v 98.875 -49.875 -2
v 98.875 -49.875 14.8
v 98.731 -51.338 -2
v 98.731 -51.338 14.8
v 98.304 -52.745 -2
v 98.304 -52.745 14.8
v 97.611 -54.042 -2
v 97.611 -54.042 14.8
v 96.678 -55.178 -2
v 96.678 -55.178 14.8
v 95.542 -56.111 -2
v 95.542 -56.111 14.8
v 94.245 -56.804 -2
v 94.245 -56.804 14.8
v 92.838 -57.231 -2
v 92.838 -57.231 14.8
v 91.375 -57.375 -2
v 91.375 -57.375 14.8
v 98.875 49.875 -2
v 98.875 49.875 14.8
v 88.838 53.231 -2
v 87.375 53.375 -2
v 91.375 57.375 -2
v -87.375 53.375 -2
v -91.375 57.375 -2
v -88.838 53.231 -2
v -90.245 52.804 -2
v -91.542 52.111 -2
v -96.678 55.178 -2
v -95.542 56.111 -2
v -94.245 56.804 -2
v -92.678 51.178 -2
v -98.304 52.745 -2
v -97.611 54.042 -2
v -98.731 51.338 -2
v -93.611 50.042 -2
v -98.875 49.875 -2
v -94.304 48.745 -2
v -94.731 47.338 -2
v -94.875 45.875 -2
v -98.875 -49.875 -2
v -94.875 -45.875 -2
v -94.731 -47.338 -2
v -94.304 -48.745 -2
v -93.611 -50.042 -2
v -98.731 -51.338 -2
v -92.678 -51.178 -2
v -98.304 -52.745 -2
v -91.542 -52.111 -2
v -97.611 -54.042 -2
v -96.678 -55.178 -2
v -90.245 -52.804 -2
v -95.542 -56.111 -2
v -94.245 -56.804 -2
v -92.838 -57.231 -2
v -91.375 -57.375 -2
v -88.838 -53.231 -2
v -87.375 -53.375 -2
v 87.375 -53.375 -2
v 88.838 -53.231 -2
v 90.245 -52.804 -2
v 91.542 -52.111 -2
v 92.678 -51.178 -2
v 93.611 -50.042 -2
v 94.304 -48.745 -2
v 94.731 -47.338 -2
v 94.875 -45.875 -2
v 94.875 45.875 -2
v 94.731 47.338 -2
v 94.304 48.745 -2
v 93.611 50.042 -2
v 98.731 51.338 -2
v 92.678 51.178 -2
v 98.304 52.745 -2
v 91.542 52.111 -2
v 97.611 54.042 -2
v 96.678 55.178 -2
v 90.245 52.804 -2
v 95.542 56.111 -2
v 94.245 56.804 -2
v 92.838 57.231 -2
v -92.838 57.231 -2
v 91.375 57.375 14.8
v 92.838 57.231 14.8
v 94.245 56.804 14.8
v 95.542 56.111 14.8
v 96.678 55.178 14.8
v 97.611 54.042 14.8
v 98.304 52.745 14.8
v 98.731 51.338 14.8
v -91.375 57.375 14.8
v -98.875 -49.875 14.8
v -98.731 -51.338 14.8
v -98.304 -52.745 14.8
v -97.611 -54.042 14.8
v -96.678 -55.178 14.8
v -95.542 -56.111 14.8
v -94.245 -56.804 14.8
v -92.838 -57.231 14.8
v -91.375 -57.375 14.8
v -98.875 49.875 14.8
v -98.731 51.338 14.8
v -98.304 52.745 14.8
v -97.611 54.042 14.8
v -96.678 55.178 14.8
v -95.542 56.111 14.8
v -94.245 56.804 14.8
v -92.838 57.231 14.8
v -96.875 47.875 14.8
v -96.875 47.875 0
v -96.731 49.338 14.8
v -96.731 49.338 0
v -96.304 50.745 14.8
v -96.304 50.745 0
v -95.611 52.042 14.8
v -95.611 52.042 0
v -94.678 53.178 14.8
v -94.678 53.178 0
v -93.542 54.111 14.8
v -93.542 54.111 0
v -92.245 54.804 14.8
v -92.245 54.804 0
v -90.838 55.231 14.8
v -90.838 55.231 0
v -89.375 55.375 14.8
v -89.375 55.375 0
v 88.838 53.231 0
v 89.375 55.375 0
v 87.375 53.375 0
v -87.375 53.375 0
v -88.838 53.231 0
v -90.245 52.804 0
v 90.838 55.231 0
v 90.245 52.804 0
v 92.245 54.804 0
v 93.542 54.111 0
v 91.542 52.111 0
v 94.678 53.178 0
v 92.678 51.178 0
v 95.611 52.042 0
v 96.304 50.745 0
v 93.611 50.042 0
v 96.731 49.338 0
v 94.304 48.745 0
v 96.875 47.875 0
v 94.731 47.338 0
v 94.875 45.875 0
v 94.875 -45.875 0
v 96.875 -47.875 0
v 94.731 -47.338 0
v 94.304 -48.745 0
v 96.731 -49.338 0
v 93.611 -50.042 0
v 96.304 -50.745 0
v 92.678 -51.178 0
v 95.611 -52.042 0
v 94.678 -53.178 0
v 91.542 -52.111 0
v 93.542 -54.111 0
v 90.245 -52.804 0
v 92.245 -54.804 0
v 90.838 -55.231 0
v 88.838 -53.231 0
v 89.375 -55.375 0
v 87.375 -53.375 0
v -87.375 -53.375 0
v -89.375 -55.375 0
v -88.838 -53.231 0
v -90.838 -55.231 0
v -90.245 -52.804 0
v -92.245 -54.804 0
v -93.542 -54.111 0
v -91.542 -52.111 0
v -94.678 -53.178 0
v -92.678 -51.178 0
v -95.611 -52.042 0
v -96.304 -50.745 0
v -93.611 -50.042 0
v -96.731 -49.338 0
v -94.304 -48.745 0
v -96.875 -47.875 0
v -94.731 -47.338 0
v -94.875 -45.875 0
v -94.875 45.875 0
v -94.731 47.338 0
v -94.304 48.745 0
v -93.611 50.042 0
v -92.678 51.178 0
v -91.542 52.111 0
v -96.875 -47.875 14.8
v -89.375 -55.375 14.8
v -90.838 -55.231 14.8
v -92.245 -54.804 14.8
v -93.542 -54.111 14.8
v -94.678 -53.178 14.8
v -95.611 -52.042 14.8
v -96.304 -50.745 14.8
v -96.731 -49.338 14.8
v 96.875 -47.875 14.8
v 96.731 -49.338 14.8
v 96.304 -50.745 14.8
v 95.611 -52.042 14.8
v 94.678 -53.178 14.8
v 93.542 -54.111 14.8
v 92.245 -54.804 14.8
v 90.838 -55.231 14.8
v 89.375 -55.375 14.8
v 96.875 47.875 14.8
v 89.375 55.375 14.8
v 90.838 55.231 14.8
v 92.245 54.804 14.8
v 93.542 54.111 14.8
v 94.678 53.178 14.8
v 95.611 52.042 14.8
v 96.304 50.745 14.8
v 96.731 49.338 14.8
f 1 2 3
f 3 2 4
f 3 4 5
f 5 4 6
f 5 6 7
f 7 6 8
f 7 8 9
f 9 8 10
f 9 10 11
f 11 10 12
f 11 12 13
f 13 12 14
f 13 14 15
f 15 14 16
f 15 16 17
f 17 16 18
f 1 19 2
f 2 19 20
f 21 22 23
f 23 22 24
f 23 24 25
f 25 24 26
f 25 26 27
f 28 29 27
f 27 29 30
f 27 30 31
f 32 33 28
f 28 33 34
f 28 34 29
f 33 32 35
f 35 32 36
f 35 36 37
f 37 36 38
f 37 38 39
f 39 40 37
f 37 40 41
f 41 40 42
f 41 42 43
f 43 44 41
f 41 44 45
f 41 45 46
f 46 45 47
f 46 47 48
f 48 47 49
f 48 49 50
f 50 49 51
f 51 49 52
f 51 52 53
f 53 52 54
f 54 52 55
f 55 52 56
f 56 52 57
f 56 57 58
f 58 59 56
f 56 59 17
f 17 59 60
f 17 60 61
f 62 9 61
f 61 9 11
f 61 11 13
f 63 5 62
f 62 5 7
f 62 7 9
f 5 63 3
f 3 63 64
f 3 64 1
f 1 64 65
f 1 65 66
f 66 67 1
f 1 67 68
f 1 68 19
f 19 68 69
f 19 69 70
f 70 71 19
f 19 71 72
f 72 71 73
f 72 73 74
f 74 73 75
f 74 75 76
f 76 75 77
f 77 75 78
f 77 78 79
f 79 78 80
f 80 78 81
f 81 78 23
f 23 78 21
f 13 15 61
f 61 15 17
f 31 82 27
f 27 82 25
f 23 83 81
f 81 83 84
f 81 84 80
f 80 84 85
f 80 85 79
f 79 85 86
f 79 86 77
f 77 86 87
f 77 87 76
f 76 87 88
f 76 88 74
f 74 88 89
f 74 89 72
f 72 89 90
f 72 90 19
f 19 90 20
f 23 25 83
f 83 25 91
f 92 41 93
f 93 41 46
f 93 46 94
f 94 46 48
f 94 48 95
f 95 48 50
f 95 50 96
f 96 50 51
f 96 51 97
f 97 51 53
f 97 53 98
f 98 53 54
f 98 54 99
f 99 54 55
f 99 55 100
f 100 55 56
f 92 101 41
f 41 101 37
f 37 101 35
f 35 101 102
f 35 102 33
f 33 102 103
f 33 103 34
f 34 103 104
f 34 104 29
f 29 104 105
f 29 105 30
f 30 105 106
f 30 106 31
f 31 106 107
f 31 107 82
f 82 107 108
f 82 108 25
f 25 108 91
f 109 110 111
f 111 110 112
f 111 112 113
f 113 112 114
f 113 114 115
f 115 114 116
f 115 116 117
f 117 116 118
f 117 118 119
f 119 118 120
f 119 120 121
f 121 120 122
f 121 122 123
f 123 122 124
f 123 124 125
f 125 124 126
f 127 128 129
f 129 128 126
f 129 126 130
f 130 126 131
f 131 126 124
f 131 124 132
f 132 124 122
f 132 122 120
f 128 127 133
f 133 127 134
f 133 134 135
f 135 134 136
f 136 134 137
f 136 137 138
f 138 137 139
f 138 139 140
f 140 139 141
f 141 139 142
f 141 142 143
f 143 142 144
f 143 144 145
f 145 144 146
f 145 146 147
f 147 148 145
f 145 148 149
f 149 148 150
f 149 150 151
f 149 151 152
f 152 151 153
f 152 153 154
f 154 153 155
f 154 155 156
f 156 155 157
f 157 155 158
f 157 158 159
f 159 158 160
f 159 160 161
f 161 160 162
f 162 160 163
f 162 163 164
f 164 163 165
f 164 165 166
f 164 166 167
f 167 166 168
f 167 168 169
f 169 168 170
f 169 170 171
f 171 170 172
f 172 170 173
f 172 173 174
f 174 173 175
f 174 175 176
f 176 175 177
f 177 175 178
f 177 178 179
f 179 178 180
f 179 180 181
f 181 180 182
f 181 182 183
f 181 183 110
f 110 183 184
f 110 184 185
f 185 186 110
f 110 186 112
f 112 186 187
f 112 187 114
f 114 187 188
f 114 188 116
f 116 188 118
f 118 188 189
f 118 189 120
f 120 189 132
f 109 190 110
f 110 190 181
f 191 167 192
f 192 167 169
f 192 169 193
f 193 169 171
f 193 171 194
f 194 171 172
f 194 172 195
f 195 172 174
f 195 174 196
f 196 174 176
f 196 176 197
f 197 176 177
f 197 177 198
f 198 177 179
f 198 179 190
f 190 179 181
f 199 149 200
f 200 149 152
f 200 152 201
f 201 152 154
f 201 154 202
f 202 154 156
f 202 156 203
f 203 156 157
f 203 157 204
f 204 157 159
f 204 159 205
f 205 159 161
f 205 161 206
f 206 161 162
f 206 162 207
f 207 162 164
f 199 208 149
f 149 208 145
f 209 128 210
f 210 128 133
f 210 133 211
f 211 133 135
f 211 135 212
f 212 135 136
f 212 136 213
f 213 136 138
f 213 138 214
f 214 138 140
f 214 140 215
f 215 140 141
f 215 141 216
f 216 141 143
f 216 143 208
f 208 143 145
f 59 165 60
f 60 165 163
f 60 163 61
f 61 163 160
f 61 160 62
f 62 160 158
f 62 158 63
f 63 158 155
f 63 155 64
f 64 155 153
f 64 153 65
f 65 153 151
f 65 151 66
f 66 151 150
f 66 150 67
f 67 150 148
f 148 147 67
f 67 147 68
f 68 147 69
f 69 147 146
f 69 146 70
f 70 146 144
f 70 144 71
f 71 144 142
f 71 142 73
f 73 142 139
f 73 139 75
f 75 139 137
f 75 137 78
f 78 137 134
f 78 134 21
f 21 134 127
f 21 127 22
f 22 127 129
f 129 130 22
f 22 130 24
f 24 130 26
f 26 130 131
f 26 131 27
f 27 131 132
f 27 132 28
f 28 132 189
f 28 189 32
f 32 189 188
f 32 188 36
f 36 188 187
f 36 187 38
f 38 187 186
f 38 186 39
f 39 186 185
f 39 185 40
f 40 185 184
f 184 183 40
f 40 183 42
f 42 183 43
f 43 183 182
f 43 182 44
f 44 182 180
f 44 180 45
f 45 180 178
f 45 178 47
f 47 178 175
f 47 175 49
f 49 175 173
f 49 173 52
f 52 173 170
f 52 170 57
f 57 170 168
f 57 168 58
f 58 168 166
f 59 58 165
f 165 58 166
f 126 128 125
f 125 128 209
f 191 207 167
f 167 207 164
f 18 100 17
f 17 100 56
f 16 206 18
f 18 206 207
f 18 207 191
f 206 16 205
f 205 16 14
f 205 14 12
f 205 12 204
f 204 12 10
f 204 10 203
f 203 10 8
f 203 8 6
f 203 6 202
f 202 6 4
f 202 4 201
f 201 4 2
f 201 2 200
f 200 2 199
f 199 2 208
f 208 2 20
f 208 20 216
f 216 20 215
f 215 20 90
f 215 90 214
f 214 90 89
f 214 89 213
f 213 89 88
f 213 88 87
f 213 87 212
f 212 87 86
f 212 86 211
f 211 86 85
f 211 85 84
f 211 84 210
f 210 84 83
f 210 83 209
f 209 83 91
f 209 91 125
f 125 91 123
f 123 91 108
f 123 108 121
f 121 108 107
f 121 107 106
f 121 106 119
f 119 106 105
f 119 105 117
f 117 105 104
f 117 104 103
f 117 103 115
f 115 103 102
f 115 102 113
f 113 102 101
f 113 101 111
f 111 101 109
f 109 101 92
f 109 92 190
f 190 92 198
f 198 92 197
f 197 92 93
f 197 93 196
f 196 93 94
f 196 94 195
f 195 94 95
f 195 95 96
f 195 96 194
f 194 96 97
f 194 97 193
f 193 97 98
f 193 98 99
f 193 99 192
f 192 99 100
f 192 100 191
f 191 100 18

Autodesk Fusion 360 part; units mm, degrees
sketch "Sketch1" plane through (0, 0, 0) normal (0, 0, 1) x (1, 0, 0)
  line L0 (-96.875, 55.375) -> (96.875, 55.375)
  line L1 (96.875, 55.375) -> (96.875, -55.375)
  line L2 (96.875, -55.375) -> (-96.875, -55.375)
  line L3 (-96.875, -55.375) -> (-96.875, 55.375)
  line L4 (-98.875, 57.375) -> (98.875, 57.375)
  line L5 (98.875, 57.375) -> (98.875, -57.375)
  line L6 (98.875, -57.375) -> (-98.875, -57.375)
  line L7 (-98.875, -57.375) -> (-98.875, 57.375)
  point P0 (0, 55.375)
  point P1 (-96.875, 0)
  point P2 (0, 57.375)
  point P3 (98.875, 0)
  dimension "d1" = 193.75
  dimension "d2" = 110.75
  dimension "d3" = 2
  dimension "d4" = 2
extrude "Extrude1" add sketch "Sketch1" along normal blind 14.8
sketch "Sketch2" plane through (0, 0, 0) normal (0, 0, -1) x (1, 0, 0)
  line L0 (-96.875, 55.375) -> (96.875, 55.375)
  line L1 (96.875, 55.375) -> (96.875, -55.375)
  line L2 (96.875, -55.375) -> (-96.875, -55.375)
  line L3 (-96.875, -55.375) -> (-96.875, 55.375)
  line L4 (98.875, 57.375) -> (-98.875, 57.375)
  line L5 (-98.875, 57.375) -> (-98.875, -57.375)
  line L6 (-98.875, -57.375) -> (98.875, -57.375)
  line L7 (98.875, -57.375) -> (98.875, 57.375)
  line L8 (-98.875, 57.375) -> (98.875, 57.375)
  line L9 (98.875, 57.375) -> (98.875, -57.375)
  line L10 (98.875, -57.375) -> (-98.875, -57.375)
  line L11 (-98.875, -57.375) -> (-98.875, 57.375)
  line L12 (-94.875, 53.375) -> (94.875, 53.375)
  line L13 (94.875, 53.375) -> (94.875, -53.375)
  line L14 (94.875, -53.375) -> (-94.875, -53.375)
  line L15 (-94.875, -53.375) -> (-94.875, 53.375)
  point P0 (0, 53.375)
  point P1 (94.875, 0)
  dimension "d15" = 2
  dimension "d16" = 2
extrude "Extrude2" add sketch "Sketch2" along normal blind 2 contours L0 L1 L2 L3 | L4 L5 L6 L7 L8 L9 L10 L11
fillet "Fillet1" radius 7.5 12 edges at (-94.875, -53.375, -1) (-94.875, 53.375, -1) (94.875, 53.375, -1) (94.875, -53.375, -1) (-98.875, 57.375, 6.4) (-98.875, -57.375, 6.4) (98.875, 57.375, 6.4) (98.875, -57.375, 6.4) (96.875, 55.375, 7.4) (96.875, -55.375, 7.4) (-96.875, -55.375, 7.4) (-96.875, 55.375, 7.4)
equation "d4 = d3"
equation "d5 = 2 mm + 4.8 mm + 8 mm"
equation "d16 = d15"
